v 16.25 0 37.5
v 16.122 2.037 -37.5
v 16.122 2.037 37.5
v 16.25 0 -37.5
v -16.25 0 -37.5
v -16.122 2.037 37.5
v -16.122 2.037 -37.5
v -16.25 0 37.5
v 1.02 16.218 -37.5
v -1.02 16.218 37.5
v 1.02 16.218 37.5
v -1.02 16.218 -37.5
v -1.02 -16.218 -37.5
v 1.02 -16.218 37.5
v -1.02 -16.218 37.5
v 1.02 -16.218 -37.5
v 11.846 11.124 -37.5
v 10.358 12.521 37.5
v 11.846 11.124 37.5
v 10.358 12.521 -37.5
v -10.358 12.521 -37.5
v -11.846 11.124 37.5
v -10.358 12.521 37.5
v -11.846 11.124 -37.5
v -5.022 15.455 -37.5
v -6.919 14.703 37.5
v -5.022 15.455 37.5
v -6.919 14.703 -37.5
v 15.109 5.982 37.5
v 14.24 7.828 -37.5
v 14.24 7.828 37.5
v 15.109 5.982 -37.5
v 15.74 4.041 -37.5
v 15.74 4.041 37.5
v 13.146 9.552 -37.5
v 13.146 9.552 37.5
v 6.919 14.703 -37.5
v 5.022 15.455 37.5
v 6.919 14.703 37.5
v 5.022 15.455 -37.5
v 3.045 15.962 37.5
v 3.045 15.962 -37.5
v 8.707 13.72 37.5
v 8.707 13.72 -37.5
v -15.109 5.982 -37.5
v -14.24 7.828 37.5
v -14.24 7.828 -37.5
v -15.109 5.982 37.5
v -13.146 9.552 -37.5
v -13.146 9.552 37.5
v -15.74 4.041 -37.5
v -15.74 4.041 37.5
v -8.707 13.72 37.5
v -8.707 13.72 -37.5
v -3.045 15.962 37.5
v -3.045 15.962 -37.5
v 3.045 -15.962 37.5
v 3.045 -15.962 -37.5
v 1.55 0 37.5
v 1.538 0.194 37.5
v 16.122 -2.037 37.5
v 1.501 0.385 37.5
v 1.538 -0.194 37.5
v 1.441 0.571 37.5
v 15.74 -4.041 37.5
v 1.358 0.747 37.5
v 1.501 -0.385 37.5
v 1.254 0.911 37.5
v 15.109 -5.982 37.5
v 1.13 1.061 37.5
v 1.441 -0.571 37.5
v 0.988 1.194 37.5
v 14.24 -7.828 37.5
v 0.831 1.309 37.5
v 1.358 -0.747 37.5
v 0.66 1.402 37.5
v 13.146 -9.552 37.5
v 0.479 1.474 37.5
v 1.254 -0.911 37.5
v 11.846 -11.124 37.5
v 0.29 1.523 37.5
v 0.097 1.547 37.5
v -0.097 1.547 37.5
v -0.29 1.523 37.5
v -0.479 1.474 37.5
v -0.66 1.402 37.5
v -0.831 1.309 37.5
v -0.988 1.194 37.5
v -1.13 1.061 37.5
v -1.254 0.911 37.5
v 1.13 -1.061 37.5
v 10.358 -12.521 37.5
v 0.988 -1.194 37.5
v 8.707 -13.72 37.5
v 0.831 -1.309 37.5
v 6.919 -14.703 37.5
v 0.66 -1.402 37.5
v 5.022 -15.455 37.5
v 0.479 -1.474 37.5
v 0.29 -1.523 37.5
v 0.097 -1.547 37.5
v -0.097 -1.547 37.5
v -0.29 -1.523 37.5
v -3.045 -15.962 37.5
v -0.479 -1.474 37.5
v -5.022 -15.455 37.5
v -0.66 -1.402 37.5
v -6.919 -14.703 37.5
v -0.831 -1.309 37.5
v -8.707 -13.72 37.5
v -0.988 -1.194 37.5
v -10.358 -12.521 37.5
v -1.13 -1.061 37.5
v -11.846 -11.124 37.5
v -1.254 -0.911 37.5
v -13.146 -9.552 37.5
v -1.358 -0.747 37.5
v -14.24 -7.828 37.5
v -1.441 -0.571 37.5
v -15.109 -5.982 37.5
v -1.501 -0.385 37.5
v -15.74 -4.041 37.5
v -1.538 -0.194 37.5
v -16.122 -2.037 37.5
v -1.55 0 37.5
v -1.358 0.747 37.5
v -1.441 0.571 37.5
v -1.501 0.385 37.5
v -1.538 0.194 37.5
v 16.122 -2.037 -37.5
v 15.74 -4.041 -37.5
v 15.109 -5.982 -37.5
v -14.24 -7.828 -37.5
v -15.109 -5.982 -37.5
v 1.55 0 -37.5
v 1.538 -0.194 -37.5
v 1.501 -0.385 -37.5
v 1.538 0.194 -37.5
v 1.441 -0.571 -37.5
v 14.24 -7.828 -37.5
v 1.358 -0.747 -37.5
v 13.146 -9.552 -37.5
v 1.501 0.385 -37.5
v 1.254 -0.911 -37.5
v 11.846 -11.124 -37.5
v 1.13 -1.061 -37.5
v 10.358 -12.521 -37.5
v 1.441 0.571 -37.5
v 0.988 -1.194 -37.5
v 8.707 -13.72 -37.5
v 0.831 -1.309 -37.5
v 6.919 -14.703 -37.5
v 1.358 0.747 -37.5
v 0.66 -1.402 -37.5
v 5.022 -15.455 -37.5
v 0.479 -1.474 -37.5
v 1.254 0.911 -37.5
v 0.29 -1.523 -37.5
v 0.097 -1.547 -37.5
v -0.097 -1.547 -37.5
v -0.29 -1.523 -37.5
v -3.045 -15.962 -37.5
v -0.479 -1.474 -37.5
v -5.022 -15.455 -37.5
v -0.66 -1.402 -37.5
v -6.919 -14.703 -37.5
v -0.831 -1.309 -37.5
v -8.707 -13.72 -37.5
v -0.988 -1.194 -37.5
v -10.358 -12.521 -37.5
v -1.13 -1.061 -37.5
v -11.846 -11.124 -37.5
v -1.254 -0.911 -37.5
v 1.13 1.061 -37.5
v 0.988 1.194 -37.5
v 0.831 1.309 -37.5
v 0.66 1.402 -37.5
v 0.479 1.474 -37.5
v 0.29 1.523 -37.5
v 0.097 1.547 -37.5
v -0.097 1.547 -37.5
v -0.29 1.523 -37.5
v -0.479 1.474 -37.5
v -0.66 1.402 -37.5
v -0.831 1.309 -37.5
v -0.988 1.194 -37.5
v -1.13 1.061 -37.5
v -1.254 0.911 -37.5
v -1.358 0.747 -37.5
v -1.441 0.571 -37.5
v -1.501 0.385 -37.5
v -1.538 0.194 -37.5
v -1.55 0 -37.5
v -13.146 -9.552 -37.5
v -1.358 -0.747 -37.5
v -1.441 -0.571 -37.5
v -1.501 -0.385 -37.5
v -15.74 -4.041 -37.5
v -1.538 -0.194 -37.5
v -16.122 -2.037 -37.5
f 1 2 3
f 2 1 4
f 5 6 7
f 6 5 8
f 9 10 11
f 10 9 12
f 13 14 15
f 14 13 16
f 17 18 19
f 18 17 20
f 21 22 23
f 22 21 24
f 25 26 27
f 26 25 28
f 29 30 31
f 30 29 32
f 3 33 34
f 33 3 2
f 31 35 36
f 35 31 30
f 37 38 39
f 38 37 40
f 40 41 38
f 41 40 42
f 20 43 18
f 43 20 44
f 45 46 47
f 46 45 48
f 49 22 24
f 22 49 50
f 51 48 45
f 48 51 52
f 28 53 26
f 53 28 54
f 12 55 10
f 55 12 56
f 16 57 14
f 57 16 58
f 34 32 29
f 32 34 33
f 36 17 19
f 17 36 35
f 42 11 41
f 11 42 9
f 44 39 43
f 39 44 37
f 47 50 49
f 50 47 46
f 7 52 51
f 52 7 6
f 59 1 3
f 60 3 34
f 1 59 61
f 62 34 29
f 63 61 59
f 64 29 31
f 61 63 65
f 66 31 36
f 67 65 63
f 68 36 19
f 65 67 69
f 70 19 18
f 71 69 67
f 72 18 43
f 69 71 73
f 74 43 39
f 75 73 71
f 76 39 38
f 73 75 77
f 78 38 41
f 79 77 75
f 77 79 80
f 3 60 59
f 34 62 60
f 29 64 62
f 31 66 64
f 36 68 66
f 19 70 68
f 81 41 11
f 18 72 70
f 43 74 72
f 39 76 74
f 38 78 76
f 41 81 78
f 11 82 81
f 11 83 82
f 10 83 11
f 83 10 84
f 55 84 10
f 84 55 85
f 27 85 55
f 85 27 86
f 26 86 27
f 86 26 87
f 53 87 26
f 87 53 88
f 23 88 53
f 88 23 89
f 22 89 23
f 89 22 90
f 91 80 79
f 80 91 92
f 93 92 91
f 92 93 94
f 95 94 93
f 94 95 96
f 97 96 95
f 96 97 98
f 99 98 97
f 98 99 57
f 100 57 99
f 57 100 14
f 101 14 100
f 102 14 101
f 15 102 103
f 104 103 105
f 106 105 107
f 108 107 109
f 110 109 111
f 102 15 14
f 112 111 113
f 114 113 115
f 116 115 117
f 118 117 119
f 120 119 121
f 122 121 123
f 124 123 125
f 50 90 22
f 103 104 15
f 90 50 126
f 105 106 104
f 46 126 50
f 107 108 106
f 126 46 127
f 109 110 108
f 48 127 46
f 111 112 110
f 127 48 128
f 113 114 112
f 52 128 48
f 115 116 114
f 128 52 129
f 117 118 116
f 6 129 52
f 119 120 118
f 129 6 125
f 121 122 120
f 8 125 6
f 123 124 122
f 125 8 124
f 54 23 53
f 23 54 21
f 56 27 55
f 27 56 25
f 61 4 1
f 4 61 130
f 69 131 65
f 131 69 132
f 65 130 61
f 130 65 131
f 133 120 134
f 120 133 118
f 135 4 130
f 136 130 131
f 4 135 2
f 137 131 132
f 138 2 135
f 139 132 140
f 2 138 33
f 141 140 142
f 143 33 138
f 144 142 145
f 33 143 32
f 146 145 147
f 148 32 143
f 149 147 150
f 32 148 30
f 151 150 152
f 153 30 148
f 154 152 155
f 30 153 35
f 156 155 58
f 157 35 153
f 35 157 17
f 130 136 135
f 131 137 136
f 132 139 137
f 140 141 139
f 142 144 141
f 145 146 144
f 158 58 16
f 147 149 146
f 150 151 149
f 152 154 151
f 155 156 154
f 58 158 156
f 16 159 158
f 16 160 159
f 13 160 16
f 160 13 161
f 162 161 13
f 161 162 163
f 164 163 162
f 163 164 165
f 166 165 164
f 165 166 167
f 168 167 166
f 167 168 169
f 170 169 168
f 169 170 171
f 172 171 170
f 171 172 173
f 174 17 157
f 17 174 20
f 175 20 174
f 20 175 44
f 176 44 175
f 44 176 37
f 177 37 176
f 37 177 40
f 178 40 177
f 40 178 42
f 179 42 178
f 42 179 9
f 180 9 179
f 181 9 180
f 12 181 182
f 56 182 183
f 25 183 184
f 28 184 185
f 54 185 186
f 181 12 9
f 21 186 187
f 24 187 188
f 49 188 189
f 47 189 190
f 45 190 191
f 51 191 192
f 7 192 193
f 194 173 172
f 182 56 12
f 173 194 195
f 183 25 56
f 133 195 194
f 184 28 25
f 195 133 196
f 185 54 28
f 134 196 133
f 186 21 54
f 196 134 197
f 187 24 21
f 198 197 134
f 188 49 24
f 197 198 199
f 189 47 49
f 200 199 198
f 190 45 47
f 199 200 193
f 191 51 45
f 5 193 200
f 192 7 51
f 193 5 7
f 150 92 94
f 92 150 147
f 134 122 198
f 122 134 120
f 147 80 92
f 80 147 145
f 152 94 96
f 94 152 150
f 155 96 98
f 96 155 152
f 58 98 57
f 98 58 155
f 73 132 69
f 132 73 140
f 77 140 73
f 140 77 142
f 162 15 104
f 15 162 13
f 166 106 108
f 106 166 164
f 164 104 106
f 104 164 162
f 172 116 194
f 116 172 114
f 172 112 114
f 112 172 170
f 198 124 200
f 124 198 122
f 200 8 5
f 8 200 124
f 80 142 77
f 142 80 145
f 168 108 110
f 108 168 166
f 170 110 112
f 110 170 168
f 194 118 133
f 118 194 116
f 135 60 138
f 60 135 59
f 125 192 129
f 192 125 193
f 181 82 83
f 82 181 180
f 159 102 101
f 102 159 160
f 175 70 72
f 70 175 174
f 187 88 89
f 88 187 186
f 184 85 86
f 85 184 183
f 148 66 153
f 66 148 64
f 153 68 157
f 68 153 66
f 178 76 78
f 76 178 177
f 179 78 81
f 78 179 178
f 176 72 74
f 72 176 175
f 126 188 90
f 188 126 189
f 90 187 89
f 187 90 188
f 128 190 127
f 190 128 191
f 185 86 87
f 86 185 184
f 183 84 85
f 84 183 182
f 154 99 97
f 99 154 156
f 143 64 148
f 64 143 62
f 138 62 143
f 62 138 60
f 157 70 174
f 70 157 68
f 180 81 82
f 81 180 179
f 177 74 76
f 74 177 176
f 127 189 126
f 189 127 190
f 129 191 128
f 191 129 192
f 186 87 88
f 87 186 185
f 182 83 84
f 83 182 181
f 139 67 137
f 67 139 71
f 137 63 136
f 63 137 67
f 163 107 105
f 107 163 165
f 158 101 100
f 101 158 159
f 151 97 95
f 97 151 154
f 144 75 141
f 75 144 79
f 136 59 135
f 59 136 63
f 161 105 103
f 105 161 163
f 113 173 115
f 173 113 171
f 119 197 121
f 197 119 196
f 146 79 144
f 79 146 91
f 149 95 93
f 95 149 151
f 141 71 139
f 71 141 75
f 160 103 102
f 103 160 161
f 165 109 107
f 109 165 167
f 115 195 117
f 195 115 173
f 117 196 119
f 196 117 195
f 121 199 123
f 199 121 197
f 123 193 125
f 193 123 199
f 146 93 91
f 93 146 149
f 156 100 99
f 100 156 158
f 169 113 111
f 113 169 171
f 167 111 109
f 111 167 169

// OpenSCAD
$fn = 50;


difference() {
	union() {
		translate(v = [0, 0, -37.5000000000]) {
			cylinder(h = 75, r = 16.2500000000);
		}
	}
	union() {
		translate(v = [0, 0, -100.0000000000]) {
			cylinder(h = 200, r = 1.5500000000);
		}
	}
}
